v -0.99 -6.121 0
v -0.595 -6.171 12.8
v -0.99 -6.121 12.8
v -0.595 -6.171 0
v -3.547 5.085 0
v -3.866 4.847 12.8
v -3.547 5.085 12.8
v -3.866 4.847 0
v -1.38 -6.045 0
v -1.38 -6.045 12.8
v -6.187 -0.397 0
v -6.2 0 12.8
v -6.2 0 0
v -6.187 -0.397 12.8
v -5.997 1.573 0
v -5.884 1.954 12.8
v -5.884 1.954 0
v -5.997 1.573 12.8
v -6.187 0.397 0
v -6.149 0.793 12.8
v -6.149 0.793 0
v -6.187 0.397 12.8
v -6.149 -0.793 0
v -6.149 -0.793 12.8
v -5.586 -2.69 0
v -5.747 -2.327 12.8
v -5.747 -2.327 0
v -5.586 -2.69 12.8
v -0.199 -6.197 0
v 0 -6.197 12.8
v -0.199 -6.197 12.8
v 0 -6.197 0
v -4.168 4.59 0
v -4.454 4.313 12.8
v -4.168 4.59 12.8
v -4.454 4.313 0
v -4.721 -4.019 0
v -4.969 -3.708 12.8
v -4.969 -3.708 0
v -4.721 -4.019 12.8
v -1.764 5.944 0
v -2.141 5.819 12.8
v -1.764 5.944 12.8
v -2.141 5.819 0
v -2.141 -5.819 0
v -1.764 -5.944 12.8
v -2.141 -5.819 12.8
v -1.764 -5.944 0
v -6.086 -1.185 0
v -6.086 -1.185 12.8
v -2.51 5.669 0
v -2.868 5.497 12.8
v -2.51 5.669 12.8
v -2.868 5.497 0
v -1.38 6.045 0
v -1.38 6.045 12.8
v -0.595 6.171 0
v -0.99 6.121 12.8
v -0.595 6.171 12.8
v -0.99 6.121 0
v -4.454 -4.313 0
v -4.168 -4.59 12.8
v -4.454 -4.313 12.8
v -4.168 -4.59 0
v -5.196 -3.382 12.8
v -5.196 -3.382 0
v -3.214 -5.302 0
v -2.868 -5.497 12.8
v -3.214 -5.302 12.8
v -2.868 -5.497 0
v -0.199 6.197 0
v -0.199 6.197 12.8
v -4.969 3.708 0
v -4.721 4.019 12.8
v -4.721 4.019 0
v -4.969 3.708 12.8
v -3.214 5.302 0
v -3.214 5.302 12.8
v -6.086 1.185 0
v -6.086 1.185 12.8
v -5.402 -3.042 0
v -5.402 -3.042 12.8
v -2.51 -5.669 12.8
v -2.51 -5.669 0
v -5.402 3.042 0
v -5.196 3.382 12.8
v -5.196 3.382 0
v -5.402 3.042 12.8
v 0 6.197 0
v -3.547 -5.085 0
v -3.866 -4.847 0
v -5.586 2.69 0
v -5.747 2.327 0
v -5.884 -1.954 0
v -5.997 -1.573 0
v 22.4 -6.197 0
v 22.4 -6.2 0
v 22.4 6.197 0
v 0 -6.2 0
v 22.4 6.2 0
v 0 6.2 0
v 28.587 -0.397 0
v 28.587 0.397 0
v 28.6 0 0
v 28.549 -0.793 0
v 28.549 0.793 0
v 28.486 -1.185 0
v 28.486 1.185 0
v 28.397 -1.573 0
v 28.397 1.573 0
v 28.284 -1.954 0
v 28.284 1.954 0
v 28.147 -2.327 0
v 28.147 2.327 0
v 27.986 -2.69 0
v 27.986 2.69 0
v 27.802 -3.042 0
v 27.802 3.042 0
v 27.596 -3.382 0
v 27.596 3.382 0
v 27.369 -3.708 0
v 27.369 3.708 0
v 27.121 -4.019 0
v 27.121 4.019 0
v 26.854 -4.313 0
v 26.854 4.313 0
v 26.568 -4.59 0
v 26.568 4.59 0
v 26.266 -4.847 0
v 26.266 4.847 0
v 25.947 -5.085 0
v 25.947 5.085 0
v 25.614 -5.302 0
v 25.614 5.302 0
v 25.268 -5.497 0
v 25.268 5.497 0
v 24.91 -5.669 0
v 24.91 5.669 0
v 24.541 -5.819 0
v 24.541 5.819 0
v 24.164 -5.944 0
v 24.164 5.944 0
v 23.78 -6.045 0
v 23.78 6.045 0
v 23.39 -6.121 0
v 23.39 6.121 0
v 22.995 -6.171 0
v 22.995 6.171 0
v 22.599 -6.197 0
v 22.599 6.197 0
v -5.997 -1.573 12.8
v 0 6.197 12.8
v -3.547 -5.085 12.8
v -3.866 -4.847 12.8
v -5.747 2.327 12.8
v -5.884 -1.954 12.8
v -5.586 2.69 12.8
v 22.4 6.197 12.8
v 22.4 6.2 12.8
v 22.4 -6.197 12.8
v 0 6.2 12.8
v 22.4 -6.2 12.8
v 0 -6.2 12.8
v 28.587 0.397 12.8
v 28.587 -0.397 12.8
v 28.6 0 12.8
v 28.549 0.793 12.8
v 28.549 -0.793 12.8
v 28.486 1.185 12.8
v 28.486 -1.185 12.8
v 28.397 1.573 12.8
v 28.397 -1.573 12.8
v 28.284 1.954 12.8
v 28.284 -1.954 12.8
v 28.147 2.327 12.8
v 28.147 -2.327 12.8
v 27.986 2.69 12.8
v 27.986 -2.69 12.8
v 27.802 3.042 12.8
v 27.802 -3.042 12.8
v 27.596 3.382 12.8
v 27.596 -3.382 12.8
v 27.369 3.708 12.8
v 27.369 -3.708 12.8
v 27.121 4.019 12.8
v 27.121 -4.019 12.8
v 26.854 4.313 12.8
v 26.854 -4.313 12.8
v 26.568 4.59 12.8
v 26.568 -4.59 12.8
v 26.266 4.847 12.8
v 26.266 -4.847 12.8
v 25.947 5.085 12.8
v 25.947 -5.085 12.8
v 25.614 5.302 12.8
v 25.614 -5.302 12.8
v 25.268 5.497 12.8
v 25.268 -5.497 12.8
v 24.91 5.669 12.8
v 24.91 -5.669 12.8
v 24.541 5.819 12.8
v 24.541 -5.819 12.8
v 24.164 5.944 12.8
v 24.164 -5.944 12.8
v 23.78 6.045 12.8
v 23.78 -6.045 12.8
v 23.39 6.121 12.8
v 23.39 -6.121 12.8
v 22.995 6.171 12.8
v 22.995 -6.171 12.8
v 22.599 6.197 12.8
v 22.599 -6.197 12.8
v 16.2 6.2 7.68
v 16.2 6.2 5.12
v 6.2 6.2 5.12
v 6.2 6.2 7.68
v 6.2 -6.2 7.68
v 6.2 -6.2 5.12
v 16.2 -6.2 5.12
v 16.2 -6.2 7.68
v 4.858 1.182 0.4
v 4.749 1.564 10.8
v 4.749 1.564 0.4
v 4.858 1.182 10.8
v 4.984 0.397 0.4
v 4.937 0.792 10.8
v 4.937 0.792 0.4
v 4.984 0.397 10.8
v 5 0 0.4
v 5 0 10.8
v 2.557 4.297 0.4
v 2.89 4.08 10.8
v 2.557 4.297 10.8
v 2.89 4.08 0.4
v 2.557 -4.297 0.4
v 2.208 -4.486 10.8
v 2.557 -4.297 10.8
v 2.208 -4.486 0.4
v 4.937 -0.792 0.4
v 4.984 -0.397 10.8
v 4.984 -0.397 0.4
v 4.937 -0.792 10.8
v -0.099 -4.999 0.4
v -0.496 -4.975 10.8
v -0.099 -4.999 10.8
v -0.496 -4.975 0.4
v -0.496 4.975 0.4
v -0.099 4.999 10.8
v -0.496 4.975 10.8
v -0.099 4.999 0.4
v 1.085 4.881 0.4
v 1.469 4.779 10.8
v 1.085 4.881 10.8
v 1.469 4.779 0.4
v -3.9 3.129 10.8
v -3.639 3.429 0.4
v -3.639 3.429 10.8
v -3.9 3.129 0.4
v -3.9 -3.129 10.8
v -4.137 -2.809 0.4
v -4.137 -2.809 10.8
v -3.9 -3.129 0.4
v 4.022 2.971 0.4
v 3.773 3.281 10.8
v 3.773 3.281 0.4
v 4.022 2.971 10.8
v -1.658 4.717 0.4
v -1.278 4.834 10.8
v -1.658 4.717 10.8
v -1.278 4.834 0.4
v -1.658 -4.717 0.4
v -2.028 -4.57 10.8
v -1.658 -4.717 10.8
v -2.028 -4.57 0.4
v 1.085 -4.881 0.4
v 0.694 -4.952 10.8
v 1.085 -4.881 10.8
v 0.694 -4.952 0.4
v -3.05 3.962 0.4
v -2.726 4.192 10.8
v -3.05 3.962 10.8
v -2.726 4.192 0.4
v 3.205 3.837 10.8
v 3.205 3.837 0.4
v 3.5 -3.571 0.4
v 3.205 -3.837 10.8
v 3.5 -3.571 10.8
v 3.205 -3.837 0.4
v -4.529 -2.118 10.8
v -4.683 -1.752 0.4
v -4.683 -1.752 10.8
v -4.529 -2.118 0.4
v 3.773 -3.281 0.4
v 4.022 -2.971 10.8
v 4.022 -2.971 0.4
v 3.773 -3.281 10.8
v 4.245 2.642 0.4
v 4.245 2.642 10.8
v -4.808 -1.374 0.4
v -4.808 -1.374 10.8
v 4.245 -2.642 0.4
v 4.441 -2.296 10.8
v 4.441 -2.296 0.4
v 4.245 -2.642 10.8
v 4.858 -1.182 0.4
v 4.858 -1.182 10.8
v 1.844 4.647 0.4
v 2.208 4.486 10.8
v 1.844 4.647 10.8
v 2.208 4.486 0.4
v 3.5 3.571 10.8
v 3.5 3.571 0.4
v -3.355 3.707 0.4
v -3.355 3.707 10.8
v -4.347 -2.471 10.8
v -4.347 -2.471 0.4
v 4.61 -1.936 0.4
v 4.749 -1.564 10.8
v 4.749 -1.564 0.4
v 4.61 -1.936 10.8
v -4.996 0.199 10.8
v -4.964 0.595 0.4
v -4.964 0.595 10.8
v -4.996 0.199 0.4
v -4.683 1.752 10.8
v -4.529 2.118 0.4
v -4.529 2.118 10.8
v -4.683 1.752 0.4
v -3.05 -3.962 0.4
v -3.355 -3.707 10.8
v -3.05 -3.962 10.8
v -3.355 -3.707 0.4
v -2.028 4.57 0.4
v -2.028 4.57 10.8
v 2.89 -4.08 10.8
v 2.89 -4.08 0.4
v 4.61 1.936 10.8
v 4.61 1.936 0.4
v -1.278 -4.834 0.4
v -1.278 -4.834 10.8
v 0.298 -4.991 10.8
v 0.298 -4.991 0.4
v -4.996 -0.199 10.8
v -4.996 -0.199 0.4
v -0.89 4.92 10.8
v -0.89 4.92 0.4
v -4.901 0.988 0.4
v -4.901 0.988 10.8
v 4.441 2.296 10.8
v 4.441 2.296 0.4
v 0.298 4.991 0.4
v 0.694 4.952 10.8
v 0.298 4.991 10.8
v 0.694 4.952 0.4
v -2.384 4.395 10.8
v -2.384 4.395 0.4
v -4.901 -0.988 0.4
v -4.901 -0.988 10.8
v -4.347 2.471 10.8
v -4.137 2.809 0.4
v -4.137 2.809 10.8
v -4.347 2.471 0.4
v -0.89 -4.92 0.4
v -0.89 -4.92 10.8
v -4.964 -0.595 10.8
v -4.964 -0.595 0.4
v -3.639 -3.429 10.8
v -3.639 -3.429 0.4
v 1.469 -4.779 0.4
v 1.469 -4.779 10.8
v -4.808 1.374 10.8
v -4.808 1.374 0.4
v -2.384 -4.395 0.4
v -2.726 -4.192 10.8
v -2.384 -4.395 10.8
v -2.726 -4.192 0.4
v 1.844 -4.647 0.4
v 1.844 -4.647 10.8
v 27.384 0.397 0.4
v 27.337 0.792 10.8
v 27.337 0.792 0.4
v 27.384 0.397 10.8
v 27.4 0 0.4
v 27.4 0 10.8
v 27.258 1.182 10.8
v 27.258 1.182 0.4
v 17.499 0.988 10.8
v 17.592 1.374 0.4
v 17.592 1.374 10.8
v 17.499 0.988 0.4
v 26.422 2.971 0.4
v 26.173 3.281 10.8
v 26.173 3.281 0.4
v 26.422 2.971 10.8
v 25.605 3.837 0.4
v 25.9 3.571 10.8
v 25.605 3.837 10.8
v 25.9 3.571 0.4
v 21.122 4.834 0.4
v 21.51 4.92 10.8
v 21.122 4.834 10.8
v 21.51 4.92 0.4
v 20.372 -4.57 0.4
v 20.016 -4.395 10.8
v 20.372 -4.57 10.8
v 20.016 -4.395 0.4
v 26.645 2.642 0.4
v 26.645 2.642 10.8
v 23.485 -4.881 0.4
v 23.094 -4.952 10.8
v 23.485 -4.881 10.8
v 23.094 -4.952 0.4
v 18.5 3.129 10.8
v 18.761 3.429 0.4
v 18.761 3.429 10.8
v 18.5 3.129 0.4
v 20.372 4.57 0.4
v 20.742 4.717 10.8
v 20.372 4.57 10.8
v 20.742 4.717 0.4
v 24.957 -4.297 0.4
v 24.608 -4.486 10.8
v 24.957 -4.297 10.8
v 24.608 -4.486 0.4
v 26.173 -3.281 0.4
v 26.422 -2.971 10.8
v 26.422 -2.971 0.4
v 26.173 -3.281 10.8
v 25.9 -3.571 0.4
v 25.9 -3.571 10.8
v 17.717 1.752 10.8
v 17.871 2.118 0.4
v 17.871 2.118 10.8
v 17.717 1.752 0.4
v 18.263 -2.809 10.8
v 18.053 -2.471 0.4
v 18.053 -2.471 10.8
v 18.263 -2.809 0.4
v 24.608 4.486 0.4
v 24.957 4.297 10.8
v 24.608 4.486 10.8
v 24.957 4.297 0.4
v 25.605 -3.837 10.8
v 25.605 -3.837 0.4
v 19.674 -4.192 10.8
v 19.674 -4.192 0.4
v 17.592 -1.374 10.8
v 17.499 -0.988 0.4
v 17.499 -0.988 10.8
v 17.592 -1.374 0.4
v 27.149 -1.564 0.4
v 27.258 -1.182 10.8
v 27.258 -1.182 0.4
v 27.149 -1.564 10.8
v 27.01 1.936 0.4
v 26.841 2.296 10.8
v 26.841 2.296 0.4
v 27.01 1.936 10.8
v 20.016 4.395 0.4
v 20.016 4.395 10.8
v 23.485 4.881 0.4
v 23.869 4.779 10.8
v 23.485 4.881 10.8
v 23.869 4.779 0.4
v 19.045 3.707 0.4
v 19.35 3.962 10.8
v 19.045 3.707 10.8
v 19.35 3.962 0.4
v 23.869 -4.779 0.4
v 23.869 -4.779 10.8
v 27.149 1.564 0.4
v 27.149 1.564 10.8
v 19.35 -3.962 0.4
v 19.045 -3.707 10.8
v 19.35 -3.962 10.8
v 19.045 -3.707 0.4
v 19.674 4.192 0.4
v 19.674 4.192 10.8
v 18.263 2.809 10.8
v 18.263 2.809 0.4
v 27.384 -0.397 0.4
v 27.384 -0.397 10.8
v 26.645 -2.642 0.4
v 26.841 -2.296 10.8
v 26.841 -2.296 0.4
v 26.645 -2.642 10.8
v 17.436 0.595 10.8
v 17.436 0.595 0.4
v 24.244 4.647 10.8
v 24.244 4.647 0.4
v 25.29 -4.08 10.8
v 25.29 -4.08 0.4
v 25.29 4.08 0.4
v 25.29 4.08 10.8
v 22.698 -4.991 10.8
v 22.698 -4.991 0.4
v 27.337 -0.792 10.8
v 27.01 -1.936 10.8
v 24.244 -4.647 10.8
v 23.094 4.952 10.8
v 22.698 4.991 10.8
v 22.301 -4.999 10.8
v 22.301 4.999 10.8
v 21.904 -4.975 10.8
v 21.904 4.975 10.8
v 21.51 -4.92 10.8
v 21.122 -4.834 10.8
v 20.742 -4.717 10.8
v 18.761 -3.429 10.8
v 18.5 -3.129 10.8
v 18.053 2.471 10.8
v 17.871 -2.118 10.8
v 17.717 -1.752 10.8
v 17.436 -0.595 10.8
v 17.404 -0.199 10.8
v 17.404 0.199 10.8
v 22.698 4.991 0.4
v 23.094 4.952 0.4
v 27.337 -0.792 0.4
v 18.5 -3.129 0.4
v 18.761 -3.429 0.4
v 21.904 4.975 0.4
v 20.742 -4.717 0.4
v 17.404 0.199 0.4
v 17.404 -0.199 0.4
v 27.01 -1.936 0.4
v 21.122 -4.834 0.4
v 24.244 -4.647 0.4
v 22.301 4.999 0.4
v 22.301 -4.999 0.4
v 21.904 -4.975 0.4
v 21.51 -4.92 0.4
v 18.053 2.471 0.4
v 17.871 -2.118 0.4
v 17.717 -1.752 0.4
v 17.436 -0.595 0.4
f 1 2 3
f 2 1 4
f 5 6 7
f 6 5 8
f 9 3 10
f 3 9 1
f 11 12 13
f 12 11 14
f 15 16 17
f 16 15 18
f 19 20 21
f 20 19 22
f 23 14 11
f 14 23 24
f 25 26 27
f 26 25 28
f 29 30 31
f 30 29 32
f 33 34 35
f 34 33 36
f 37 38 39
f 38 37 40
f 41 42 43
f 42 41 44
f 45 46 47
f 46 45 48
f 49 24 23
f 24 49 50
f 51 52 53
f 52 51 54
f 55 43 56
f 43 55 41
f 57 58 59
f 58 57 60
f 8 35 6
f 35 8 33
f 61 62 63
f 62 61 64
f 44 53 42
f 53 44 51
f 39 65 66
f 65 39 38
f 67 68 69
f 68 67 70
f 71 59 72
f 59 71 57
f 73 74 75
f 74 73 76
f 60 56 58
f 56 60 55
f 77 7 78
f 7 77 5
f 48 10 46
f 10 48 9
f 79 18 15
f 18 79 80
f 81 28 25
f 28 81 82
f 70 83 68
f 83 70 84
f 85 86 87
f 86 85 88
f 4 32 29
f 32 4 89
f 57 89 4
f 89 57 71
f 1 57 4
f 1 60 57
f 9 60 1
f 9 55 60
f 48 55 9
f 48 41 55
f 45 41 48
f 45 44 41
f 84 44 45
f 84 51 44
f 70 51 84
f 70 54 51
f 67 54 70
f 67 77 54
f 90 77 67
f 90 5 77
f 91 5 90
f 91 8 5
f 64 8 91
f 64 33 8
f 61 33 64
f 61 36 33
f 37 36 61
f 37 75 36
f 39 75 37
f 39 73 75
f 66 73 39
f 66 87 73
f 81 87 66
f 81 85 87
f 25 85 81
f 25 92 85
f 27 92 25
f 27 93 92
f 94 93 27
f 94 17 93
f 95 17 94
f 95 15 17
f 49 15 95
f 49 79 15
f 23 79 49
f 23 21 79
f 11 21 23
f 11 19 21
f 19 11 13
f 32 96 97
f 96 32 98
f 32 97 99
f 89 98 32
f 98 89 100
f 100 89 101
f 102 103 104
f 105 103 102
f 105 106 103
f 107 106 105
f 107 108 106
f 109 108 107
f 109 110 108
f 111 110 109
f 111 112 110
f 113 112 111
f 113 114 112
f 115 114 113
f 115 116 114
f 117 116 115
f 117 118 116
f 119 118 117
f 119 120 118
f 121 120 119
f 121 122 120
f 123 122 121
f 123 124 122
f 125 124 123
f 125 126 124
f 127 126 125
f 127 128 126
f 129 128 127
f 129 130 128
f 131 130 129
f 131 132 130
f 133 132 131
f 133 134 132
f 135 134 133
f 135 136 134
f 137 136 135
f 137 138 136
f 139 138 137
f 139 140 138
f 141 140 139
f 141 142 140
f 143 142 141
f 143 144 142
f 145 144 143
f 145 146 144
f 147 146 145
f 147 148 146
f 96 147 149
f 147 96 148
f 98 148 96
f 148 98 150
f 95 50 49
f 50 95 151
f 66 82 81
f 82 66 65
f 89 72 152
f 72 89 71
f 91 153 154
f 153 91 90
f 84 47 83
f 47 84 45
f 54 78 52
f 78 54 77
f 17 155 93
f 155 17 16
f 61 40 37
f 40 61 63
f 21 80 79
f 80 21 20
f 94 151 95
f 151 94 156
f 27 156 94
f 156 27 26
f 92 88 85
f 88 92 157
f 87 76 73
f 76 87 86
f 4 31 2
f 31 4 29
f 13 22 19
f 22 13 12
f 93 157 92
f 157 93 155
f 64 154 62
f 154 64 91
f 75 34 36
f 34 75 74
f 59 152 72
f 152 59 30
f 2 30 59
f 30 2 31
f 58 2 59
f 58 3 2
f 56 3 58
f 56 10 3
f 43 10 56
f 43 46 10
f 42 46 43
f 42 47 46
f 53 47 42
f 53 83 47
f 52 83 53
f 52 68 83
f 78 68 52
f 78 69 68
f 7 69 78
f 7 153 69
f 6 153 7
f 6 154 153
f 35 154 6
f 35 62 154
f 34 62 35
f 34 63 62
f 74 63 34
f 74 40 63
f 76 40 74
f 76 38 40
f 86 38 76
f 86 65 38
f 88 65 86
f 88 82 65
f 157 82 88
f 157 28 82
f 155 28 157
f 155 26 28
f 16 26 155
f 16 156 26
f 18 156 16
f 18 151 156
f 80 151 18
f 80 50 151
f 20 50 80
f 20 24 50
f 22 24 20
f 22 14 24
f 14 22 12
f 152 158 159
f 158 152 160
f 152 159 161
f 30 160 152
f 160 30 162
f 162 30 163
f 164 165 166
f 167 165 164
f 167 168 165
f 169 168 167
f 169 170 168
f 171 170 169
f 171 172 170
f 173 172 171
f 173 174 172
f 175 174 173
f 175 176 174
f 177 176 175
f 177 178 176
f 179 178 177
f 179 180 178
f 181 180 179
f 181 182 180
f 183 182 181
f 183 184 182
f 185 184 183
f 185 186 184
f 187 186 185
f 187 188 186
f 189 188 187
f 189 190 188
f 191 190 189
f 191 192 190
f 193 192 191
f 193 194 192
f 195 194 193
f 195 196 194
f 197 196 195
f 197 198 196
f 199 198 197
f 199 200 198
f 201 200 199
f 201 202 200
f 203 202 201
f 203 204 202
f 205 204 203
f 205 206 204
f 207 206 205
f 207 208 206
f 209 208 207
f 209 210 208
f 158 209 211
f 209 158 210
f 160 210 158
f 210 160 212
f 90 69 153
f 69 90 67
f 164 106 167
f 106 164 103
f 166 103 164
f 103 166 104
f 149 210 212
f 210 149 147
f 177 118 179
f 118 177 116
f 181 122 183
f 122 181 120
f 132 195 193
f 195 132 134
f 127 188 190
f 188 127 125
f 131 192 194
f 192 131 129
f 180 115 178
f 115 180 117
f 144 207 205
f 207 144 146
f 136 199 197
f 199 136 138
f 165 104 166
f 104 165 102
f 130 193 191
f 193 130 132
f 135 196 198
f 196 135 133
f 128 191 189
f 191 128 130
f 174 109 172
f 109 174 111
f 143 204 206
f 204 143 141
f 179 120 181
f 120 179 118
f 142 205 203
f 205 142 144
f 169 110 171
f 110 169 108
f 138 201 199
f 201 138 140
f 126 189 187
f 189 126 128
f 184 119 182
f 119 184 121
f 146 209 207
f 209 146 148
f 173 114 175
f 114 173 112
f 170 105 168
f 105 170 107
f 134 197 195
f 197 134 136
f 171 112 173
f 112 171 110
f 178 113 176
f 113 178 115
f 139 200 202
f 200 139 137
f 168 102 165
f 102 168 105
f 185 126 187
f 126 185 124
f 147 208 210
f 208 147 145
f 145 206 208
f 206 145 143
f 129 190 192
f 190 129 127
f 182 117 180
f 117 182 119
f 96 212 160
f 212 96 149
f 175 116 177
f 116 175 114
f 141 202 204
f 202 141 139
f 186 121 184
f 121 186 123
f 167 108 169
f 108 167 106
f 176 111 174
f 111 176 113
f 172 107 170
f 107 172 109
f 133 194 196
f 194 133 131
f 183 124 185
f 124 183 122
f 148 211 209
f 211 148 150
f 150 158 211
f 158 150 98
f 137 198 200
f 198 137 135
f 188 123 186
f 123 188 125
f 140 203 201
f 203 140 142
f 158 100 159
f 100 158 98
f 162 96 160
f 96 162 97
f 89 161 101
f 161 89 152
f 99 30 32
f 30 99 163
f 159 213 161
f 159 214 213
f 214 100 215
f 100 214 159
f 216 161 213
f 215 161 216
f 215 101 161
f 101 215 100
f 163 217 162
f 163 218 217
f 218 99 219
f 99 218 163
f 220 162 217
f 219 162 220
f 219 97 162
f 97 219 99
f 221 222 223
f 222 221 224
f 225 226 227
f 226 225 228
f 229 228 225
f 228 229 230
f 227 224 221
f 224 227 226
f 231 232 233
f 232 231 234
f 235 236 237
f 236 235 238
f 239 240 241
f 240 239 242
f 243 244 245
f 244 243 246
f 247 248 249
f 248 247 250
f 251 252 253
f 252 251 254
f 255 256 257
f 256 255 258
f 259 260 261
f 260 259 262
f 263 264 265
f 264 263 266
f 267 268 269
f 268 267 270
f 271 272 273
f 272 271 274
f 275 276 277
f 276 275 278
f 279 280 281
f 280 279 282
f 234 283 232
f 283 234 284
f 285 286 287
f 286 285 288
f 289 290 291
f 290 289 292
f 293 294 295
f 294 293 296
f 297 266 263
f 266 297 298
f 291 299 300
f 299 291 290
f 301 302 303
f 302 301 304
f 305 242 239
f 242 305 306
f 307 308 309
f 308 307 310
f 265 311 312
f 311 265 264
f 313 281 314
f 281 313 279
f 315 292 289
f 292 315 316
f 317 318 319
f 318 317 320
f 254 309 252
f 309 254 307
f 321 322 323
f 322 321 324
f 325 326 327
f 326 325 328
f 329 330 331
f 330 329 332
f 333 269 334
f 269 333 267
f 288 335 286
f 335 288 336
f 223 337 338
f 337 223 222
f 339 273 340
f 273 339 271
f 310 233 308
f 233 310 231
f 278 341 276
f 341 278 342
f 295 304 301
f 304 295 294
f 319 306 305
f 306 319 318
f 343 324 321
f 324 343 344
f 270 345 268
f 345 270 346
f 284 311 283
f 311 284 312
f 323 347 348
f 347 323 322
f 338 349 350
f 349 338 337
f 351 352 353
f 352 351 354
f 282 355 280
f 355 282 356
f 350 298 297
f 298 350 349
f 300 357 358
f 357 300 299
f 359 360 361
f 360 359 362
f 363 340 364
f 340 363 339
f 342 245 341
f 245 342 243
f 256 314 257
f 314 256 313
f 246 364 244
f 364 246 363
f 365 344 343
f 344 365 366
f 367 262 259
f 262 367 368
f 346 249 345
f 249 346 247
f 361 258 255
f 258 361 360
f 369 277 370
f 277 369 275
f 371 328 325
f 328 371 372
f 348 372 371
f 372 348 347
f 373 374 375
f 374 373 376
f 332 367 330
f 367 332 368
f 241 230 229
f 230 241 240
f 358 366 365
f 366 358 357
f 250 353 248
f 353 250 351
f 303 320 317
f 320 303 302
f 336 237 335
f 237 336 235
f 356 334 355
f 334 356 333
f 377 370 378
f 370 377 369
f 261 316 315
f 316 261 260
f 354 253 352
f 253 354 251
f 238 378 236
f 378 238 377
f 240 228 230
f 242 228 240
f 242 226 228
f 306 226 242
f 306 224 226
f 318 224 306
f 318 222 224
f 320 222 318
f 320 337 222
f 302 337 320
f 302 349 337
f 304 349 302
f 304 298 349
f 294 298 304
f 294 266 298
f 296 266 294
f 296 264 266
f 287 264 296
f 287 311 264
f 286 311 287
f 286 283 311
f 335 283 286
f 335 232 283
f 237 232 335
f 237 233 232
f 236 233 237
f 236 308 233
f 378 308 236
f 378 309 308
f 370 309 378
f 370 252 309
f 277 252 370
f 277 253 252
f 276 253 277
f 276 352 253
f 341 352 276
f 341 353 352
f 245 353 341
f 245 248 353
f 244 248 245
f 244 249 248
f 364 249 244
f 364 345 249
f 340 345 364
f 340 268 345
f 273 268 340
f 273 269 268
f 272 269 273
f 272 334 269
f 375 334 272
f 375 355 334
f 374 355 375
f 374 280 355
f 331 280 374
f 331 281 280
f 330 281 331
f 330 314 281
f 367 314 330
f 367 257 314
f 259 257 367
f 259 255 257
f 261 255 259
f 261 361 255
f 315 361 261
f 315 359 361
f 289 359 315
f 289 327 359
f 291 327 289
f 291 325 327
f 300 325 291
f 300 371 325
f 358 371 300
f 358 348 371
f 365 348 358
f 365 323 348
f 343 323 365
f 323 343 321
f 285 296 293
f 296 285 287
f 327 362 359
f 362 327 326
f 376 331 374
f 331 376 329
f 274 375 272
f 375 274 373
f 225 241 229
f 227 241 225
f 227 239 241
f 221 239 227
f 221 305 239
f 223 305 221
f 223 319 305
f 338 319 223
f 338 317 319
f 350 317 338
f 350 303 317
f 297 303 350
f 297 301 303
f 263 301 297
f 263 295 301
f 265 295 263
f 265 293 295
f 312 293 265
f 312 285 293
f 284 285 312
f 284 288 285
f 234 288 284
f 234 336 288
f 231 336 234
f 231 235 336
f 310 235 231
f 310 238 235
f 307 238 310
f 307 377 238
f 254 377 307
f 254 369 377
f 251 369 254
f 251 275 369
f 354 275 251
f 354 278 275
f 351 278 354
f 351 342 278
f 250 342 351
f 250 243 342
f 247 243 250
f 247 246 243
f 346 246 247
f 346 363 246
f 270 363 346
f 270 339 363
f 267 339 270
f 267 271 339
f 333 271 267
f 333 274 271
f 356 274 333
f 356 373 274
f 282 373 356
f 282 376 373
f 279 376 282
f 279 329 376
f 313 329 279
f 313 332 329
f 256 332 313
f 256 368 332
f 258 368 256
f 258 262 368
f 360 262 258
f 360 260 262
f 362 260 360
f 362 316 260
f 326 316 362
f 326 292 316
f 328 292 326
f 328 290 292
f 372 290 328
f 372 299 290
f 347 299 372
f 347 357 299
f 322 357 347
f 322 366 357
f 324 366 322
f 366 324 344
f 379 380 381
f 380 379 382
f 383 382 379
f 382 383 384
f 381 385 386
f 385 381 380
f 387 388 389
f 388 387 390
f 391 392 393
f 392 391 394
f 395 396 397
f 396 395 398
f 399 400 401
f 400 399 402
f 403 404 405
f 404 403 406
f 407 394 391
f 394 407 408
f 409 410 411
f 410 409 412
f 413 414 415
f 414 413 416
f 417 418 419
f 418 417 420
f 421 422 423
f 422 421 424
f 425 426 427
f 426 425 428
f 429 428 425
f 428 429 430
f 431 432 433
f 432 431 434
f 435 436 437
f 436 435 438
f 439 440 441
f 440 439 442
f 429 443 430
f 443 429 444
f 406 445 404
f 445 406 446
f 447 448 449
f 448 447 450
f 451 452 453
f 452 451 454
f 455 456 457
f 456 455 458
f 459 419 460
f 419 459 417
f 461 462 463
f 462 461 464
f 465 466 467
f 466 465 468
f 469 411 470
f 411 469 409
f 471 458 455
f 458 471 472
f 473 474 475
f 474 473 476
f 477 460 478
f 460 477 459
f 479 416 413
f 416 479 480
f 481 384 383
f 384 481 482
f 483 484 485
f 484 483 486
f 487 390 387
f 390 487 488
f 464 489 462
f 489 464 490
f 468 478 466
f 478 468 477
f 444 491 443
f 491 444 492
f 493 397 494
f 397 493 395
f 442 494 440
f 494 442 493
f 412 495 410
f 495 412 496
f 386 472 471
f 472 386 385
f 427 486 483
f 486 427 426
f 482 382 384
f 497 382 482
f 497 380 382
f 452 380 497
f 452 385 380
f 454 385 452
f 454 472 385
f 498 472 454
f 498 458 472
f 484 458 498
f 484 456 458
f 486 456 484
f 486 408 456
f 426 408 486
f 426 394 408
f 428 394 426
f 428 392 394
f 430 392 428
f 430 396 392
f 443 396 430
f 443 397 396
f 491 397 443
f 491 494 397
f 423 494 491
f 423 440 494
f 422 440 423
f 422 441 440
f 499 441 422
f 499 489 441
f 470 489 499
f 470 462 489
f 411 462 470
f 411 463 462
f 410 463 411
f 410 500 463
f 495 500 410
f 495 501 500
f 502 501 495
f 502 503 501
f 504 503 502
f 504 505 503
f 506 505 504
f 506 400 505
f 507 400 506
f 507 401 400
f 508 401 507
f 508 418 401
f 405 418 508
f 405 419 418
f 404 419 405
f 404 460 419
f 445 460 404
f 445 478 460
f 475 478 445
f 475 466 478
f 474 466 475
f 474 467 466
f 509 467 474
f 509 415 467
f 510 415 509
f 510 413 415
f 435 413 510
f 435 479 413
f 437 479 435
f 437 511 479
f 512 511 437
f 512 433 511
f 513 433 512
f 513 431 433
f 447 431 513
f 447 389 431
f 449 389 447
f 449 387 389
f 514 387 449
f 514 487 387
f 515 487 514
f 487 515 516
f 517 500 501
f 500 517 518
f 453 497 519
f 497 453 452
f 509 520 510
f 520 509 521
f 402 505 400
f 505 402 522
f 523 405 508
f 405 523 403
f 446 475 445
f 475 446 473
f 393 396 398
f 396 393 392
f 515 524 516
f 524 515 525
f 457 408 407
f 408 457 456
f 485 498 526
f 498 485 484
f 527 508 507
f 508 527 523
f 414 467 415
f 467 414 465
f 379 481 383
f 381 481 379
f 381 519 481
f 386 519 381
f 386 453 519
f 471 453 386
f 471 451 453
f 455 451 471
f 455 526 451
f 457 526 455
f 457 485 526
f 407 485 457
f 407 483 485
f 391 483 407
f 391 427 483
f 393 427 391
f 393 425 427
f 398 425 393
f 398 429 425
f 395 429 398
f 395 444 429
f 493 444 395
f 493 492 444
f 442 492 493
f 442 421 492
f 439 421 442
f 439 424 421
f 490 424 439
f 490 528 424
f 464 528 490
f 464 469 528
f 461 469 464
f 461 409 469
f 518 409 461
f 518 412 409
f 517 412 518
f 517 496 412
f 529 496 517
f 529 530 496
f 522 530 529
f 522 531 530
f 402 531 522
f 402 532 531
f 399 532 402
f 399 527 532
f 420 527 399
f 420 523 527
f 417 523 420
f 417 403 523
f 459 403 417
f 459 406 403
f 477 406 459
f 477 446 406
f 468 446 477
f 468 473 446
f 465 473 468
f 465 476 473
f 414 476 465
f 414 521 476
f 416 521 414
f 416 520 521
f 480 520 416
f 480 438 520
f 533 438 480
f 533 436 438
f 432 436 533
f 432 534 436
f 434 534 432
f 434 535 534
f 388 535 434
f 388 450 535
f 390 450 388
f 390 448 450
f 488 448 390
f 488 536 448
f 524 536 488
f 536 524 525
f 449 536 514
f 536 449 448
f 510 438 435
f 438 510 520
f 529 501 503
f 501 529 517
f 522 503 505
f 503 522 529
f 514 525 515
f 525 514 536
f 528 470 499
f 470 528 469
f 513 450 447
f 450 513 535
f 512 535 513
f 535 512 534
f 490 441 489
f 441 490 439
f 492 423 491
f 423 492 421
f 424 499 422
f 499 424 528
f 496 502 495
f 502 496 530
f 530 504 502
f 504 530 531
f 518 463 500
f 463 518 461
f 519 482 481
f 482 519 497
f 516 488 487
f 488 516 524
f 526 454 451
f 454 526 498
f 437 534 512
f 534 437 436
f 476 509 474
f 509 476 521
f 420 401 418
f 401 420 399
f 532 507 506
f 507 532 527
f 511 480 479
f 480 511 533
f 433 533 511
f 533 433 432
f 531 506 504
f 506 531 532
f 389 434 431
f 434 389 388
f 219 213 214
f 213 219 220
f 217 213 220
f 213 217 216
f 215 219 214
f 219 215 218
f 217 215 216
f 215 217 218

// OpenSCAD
$fa = 1;
$fs = 0.4;
D = 0.001;

magnetDia = 10;
magnetR = magnetDia * 0.5;
magnetHeight = 10.4;
wallThickness = 1.2;
botThickness = 0.4;
gapWidth = 10;

wholeHeight = magnetHeight + wallThickness * 2;
bigR = magnetR + wallThickness;


module body() {
	cylinder(wholeHeight, bigR, bigR);
	translate([gapWidth+bigR*2,0,0])
		cylinder(wholeHeight, bigR, bigR);
	translate([0,-bigR,0])
		cube([gapWidth+bigR*2,bigR*2,wholeHeight]);
}


difference() {
	body();
	translate([0,0,botThickness])
		cylinder(magnetHeight, magnetR, magnetR);
	translate([gapWidth+bigR*2,0,botThickness])
		cylinder(magnetHeight, magnetR, magnetR);
	translate([bigR,-bigR-D,wholeHeight*0.4])
		cube([gapWidth,bigR*2+2*D,wholeHeight*0.2]);
		
}
